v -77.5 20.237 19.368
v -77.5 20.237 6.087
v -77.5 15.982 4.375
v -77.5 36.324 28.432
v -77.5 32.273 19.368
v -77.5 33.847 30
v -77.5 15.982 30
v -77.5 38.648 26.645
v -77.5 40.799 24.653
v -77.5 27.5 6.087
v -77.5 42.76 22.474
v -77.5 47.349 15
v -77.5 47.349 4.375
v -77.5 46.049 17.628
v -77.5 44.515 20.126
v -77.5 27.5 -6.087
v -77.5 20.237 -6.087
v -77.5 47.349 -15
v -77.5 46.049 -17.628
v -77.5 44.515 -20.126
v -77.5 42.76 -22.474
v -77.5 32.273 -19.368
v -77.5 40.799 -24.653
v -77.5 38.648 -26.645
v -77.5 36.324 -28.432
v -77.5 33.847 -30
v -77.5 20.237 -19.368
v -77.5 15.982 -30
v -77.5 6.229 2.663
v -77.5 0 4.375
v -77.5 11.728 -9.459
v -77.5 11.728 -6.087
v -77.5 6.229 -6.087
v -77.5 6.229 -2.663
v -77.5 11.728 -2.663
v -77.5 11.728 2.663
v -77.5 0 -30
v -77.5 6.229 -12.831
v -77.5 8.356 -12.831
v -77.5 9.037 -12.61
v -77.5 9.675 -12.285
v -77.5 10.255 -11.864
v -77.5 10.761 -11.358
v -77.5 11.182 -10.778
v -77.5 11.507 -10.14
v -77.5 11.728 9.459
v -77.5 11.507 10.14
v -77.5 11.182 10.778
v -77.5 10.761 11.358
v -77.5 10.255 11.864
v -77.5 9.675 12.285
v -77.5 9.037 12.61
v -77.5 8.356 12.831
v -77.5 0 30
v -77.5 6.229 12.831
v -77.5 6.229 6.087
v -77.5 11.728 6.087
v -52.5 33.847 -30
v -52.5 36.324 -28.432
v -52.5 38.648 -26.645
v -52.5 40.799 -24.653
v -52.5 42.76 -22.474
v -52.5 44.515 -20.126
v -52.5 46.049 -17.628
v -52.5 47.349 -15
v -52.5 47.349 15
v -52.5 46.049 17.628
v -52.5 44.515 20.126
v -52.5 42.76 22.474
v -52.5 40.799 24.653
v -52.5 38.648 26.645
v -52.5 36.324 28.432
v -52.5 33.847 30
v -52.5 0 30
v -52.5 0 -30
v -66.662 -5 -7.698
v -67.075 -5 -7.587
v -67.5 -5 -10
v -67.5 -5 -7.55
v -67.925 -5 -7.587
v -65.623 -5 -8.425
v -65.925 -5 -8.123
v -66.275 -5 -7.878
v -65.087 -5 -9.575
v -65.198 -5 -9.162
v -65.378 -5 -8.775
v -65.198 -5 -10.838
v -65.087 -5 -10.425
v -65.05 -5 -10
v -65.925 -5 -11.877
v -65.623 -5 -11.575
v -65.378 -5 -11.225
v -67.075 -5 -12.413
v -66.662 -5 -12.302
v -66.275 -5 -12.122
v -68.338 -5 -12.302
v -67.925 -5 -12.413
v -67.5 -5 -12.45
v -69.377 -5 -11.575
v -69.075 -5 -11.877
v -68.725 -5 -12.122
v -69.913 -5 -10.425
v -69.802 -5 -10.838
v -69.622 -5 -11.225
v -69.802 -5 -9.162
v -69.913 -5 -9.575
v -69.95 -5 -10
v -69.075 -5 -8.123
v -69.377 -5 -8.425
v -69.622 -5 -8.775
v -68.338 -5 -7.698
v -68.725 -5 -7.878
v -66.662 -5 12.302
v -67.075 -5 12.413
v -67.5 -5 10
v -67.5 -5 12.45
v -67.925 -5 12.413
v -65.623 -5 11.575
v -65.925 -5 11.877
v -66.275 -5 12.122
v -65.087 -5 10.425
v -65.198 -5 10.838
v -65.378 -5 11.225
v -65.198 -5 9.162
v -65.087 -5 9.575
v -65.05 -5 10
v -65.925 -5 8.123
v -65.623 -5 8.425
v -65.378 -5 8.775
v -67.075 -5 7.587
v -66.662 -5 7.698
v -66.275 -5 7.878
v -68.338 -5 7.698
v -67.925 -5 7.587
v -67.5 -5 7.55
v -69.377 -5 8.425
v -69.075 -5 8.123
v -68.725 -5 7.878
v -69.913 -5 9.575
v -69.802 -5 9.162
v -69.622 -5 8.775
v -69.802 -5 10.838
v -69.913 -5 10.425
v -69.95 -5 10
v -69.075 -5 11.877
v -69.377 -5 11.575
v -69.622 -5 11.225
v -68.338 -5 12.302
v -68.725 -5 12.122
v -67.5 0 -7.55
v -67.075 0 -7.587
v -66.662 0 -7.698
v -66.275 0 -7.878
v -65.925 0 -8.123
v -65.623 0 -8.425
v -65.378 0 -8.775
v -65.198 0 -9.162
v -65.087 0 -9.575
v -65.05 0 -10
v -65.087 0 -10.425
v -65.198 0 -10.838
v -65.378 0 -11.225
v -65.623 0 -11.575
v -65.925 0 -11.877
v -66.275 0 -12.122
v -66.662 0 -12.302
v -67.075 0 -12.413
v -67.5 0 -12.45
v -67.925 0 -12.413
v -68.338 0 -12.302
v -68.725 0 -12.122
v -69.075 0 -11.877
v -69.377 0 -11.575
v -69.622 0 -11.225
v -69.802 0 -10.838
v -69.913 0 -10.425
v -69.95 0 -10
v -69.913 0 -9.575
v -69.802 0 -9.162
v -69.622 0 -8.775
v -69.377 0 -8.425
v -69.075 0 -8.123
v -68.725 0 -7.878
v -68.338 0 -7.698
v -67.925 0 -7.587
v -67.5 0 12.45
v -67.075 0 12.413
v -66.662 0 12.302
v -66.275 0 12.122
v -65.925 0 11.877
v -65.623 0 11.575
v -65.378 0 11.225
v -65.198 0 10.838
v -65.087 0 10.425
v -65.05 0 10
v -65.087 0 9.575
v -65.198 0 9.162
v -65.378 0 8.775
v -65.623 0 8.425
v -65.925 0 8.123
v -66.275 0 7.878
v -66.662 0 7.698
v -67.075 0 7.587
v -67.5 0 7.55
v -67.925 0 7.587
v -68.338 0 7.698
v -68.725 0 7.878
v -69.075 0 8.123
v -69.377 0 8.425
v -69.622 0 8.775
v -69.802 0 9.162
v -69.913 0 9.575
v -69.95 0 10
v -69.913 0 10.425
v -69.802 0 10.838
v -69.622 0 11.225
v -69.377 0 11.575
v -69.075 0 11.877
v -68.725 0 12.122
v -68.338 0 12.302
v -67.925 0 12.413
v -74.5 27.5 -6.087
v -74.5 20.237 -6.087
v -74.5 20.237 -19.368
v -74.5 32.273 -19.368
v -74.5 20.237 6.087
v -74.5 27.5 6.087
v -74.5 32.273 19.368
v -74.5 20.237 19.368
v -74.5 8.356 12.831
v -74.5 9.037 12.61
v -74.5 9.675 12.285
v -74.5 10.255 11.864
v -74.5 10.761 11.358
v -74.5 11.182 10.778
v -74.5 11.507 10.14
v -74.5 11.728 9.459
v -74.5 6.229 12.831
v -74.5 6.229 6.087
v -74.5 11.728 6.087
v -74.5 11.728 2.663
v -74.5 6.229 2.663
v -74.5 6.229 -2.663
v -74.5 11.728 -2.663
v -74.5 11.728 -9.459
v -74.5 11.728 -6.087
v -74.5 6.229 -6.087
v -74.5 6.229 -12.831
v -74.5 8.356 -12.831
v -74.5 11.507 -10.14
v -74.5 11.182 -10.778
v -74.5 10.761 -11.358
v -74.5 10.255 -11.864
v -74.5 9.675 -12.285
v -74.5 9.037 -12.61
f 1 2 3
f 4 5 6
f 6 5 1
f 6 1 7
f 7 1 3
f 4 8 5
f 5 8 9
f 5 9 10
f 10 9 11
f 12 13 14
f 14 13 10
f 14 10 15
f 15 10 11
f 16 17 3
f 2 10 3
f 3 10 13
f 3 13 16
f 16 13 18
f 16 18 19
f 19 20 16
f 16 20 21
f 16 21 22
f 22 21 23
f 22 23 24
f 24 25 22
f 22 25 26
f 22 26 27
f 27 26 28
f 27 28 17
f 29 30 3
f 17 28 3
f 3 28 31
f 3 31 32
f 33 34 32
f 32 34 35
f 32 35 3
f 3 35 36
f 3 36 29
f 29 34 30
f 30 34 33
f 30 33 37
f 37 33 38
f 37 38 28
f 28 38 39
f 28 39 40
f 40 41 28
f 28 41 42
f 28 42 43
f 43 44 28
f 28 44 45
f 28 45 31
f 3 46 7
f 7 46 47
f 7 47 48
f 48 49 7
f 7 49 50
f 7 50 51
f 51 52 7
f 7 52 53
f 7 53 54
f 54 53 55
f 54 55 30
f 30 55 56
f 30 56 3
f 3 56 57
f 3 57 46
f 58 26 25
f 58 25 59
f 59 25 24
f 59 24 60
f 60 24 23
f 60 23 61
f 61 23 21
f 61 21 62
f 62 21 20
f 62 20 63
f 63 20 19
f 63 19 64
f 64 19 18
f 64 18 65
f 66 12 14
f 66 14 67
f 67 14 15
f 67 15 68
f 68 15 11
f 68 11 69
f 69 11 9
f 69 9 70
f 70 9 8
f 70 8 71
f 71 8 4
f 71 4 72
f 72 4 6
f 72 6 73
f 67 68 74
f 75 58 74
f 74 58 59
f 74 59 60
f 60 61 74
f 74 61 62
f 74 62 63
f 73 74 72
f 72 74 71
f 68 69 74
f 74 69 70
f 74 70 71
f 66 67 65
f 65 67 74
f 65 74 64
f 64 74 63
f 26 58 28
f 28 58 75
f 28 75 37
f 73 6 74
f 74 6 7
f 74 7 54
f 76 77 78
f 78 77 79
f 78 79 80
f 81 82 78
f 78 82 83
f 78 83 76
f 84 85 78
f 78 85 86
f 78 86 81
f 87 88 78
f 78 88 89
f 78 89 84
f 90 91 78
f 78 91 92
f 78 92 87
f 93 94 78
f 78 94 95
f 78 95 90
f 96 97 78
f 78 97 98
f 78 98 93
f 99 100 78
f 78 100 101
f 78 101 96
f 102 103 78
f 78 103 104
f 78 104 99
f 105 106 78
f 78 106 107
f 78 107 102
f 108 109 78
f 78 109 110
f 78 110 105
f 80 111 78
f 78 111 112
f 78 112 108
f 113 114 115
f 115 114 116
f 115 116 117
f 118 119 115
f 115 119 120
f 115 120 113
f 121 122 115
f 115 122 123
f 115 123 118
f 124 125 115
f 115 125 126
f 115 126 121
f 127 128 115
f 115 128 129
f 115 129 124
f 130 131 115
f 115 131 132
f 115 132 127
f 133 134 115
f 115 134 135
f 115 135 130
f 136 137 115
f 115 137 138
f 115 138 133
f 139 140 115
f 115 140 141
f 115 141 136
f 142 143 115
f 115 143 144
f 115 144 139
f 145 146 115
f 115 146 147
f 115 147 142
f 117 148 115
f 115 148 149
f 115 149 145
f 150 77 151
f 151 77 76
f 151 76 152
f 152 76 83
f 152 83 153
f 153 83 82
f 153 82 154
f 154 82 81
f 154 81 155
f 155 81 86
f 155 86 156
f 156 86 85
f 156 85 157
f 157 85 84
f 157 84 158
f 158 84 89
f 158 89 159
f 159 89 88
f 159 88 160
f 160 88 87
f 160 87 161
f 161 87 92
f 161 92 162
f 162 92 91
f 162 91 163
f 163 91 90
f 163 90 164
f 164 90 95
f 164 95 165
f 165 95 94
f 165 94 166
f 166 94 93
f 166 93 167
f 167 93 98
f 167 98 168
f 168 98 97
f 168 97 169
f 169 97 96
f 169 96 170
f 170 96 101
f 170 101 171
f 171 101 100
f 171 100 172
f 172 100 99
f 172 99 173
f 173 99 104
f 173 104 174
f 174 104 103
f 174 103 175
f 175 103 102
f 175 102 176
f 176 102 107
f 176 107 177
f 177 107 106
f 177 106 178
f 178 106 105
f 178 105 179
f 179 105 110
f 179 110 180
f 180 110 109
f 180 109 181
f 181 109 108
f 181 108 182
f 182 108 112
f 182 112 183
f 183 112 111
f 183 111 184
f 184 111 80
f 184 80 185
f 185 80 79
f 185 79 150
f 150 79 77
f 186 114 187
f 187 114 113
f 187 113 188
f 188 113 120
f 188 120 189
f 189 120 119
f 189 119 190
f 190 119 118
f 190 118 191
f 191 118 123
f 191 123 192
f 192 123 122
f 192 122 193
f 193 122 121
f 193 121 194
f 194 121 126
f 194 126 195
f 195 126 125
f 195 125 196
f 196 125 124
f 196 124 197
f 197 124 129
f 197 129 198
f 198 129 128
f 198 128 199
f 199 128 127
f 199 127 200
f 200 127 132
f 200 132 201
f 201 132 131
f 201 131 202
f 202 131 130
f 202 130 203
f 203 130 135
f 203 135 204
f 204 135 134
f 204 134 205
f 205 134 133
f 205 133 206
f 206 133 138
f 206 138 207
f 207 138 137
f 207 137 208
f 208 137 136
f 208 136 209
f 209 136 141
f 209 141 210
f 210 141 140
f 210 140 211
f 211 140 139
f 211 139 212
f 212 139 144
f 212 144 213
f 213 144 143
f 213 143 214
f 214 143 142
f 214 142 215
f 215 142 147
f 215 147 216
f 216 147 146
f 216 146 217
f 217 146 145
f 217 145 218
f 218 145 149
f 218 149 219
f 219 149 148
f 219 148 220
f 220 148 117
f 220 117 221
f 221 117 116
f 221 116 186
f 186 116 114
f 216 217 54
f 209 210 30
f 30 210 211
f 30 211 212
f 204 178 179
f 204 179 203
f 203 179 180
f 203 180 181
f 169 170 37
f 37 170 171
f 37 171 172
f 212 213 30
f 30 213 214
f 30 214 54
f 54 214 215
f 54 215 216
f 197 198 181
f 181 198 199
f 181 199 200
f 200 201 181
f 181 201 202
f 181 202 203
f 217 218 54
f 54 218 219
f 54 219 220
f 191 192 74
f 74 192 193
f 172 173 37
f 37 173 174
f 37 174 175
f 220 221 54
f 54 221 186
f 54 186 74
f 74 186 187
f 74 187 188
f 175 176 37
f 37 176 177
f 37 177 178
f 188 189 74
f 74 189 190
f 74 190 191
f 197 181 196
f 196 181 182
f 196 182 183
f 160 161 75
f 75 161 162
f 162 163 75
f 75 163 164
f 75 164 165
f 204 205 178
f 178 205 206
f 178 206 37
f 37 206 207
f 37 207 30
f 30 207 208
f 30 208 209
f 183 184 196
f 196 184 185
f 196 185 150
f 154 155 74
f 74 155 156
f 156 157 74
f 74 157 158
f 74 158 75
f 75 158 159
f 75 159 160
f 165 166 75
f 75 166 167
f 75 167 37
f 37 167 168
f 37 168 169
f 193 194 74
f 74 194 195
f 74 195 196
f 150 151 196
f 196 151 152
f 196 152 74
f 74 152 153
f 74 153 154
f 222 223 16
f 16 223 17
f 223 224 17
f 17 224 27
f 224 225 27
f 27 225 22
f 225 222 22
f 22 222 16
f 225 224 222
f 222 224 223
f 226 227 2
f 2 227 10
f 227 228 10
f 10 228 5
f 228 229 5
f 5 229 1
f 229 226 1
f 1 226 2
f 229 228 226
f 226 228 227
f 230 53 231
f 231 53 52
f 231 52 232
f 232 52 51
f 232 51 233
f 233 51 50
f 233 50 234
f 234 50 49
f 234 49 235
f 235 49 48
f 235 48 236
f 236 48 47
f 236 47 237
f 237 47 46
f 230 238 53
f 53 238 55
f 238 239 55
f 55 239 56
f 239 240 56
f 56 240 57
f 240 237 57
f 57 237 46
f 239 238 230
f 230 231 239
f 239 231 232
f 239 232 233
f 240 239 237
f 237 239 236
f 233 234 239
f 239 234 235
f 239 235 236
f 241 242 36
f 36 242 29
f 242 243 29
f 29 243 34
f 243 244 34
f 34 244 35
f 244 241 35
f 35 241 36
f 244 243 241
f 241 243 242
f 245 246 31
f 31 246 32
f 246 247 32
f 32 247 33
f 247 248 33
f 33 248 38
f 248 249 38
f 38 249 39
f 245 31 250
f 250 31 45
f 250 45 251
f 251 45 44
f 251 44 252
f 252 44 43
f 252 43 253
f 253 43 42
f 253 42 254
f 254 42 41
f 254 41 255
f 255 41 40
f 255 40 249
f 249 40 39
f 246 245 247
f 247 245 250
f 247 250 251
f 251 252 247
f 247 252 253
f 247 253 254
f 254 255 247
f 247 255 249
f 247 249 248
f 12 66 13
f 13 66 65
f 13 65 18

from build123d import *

# Parameters (mm, degrees)
BOSS_EXTRUDE1_DEPTH      = 15
BOSS_EXTRUDE1_DEPTH_BACK = 15
SKETCH2_R                = 2.45
BOSS_EXTRUDE2_DEPTH      = 5
CUT_EXTRUDE1_DEPTH       = 114.633181774
BOSS_EXTRUDE3_DEPTH      = 25
SKETCH5_W                = 5.325066076
SKETCH5_H                = 5.499463709
CUT_EXTRUDE2_DEPTH       = 3
SKETCH6_W                = 135.823798811
SKETCH6_H                = 59.856144922
CUT_EXTRUDE3_DEPTH       = 119.47995628
SKETCH7_W                = 30
SKETCH7_H                = 30.150652204
CUT_EXTRUDE6_DEPTH       = 162.822831918


with BuildPart() as part:
    # Sketch1 → Boss-Extrude1 (new, two sides: drawn at the far end of the back side and taken through both)
    with BuildSketch(Plane.XY.offset(-BOSS_EXTRUDE1_DEPTH_BACK)):
        with BuildLine():
            Line((-77.5, 0), (77.5, 0))
            ThreePointArc((77.5, 0), (0, 77.5), (-77.5, 0))
        make_face()
    extrude(amount=BOSS_EXTRUDE1_DEPTH + BOSS_EXTRUDE1_DEPTH_BACK)

    # Sketch2 → Boss-Extrude2 (add)
    with BuildSketch(Plane.XZ):
        with Locations((67.5, 10)):
            Circle(SKETCH2_R)
        with Locations((67.5, -10)):
            Circle(SKETCH2_R)
        with Locations((-67.5, -10)):
            Circle(SKETCH2_R)
        with Locations((-67.5, 10)):
            Circle(SKETCH2_R)
    extrude(amount=BOSS_EXTRUDE2_DEPTH)

    # Sketch3 → Cut-Extrude1 (cut, through all)
    with BuildSketch(Plane.XY.offset(15)):
        with BuildLine():
            Line((-53.909646632, 20), (53.909646632, 20))
            ThreePointArc((53.909646632, 20), (0, -57.5), (-53.909646632, 20))
        make_face()
    extrude(amount=-CUT_EXTRUDE1_DEPTH, mode=Mode.SUBTRACT)

    # Sketch4 → Boss-Extrude3 (add)
    with BuildSketch(Plane(origin=(-77.5, 0, 0), x_dir=(0, 0, -1), z_dir=(1, 0, 0))):
        with BuildLine():
            Line((-30, 0), (30, 0))
            Line((30, 0), (30, 33.846717608))
            ThreePointArc((30, 33.846717608), (17.313763728, 46.220498553), (0, 50))
            ThreePointArc((0, 50), (-17.313763728, 46.220498553), (-30, 33.846717608))
            Line((-30, 33.846717608), (-30, 0))
        make_face()
    extrude(amount=BOSS_EXTRUDE3_DEPTH)

    # Sketch5 → Cut-Extrude2 (cut)
    with BuildSketch(Plane.ZY.offset(77.5)):
        Polygon((19.368451097, 32.27320265), (6.086727423, 27.500083204), (6.086727423, 20.23664057), (19.368451097, 20.23664057), align=None)
        with BuildLine():
            ThreePointArc((-9.459040074, 11.728036341), (-11.621010767, 10.517694382), (-12.831352726, 8.35572369))
            Line((-12.831352726, 8.35572369), (-12.831352726, 6.228572632))
            Line((-12.831352726, 6.228572632), (-6.086727423, 6.228572632))
            Line((-6.086727423, 6.228572632), (-6.086727423, 11.728036341))
            Line((-6.086727423, 11.728036341), (-9.459040074, 11.728036341))
        make_face()
        with Locations((0, 8.978304487)):
            Rectangle(SKETCH5_W, SKETCH5_H)
        with BuildLine():
            Line((9.459040074, 11.728036341), (6.086727423, 11.728036341))
            Line((6.086727423, 11.728036341), (6.086727423, 6.228572632))
            Line((6.086727423, 6.228572632), (12.831352726, 6.228572632))
            Line((12.831352726, 6.228572632), (12.831352726, 8.35572369))
            ThreePointArc((12.831352726, 8.35572369), (11.621010767, 10.517694382), (9.459040074, 11.728036341))
        make_face()
        Polygon((-19.368451097, 20.23664057), (-6.086727423, 20.23664057), (-6.086727423, 27.500083204), (-19.368451097, 32.27320265), align=None)
    extrude(amount=-CUT_EXTRUDE2_DEPTH, mode=Mode.SUBTRACT)

    # Sketch6 → Cut-Extrude3 (cut, through all)
    with BuildSketch(Plane.XY.offset(15)):
        with Locations((15.411899406, 17.421275335)):
            Rectangle(SKETCH6_W, SKETCH6_H)
    extrude(amount=-CUT_EXTRUDE3_DEPTH, mode=Mode.SUBTRACT)

    # Sketch7 → Cut-Extrude6 (cut, through all)
    with BuildSketch(Plane(origin=(-77.5, 0, 0), x_dir=(0, 0, -1), z_dir=(1, 0, 0))):
        with Locations((0, 62.424673898)):
            Rectangle(SKETCH7_W, SKETCH7_H)
    extrude(amount=CUT_EXTRUDE6_DEPTH, mode=Mode.SUBTRACT)


solid = part.part
